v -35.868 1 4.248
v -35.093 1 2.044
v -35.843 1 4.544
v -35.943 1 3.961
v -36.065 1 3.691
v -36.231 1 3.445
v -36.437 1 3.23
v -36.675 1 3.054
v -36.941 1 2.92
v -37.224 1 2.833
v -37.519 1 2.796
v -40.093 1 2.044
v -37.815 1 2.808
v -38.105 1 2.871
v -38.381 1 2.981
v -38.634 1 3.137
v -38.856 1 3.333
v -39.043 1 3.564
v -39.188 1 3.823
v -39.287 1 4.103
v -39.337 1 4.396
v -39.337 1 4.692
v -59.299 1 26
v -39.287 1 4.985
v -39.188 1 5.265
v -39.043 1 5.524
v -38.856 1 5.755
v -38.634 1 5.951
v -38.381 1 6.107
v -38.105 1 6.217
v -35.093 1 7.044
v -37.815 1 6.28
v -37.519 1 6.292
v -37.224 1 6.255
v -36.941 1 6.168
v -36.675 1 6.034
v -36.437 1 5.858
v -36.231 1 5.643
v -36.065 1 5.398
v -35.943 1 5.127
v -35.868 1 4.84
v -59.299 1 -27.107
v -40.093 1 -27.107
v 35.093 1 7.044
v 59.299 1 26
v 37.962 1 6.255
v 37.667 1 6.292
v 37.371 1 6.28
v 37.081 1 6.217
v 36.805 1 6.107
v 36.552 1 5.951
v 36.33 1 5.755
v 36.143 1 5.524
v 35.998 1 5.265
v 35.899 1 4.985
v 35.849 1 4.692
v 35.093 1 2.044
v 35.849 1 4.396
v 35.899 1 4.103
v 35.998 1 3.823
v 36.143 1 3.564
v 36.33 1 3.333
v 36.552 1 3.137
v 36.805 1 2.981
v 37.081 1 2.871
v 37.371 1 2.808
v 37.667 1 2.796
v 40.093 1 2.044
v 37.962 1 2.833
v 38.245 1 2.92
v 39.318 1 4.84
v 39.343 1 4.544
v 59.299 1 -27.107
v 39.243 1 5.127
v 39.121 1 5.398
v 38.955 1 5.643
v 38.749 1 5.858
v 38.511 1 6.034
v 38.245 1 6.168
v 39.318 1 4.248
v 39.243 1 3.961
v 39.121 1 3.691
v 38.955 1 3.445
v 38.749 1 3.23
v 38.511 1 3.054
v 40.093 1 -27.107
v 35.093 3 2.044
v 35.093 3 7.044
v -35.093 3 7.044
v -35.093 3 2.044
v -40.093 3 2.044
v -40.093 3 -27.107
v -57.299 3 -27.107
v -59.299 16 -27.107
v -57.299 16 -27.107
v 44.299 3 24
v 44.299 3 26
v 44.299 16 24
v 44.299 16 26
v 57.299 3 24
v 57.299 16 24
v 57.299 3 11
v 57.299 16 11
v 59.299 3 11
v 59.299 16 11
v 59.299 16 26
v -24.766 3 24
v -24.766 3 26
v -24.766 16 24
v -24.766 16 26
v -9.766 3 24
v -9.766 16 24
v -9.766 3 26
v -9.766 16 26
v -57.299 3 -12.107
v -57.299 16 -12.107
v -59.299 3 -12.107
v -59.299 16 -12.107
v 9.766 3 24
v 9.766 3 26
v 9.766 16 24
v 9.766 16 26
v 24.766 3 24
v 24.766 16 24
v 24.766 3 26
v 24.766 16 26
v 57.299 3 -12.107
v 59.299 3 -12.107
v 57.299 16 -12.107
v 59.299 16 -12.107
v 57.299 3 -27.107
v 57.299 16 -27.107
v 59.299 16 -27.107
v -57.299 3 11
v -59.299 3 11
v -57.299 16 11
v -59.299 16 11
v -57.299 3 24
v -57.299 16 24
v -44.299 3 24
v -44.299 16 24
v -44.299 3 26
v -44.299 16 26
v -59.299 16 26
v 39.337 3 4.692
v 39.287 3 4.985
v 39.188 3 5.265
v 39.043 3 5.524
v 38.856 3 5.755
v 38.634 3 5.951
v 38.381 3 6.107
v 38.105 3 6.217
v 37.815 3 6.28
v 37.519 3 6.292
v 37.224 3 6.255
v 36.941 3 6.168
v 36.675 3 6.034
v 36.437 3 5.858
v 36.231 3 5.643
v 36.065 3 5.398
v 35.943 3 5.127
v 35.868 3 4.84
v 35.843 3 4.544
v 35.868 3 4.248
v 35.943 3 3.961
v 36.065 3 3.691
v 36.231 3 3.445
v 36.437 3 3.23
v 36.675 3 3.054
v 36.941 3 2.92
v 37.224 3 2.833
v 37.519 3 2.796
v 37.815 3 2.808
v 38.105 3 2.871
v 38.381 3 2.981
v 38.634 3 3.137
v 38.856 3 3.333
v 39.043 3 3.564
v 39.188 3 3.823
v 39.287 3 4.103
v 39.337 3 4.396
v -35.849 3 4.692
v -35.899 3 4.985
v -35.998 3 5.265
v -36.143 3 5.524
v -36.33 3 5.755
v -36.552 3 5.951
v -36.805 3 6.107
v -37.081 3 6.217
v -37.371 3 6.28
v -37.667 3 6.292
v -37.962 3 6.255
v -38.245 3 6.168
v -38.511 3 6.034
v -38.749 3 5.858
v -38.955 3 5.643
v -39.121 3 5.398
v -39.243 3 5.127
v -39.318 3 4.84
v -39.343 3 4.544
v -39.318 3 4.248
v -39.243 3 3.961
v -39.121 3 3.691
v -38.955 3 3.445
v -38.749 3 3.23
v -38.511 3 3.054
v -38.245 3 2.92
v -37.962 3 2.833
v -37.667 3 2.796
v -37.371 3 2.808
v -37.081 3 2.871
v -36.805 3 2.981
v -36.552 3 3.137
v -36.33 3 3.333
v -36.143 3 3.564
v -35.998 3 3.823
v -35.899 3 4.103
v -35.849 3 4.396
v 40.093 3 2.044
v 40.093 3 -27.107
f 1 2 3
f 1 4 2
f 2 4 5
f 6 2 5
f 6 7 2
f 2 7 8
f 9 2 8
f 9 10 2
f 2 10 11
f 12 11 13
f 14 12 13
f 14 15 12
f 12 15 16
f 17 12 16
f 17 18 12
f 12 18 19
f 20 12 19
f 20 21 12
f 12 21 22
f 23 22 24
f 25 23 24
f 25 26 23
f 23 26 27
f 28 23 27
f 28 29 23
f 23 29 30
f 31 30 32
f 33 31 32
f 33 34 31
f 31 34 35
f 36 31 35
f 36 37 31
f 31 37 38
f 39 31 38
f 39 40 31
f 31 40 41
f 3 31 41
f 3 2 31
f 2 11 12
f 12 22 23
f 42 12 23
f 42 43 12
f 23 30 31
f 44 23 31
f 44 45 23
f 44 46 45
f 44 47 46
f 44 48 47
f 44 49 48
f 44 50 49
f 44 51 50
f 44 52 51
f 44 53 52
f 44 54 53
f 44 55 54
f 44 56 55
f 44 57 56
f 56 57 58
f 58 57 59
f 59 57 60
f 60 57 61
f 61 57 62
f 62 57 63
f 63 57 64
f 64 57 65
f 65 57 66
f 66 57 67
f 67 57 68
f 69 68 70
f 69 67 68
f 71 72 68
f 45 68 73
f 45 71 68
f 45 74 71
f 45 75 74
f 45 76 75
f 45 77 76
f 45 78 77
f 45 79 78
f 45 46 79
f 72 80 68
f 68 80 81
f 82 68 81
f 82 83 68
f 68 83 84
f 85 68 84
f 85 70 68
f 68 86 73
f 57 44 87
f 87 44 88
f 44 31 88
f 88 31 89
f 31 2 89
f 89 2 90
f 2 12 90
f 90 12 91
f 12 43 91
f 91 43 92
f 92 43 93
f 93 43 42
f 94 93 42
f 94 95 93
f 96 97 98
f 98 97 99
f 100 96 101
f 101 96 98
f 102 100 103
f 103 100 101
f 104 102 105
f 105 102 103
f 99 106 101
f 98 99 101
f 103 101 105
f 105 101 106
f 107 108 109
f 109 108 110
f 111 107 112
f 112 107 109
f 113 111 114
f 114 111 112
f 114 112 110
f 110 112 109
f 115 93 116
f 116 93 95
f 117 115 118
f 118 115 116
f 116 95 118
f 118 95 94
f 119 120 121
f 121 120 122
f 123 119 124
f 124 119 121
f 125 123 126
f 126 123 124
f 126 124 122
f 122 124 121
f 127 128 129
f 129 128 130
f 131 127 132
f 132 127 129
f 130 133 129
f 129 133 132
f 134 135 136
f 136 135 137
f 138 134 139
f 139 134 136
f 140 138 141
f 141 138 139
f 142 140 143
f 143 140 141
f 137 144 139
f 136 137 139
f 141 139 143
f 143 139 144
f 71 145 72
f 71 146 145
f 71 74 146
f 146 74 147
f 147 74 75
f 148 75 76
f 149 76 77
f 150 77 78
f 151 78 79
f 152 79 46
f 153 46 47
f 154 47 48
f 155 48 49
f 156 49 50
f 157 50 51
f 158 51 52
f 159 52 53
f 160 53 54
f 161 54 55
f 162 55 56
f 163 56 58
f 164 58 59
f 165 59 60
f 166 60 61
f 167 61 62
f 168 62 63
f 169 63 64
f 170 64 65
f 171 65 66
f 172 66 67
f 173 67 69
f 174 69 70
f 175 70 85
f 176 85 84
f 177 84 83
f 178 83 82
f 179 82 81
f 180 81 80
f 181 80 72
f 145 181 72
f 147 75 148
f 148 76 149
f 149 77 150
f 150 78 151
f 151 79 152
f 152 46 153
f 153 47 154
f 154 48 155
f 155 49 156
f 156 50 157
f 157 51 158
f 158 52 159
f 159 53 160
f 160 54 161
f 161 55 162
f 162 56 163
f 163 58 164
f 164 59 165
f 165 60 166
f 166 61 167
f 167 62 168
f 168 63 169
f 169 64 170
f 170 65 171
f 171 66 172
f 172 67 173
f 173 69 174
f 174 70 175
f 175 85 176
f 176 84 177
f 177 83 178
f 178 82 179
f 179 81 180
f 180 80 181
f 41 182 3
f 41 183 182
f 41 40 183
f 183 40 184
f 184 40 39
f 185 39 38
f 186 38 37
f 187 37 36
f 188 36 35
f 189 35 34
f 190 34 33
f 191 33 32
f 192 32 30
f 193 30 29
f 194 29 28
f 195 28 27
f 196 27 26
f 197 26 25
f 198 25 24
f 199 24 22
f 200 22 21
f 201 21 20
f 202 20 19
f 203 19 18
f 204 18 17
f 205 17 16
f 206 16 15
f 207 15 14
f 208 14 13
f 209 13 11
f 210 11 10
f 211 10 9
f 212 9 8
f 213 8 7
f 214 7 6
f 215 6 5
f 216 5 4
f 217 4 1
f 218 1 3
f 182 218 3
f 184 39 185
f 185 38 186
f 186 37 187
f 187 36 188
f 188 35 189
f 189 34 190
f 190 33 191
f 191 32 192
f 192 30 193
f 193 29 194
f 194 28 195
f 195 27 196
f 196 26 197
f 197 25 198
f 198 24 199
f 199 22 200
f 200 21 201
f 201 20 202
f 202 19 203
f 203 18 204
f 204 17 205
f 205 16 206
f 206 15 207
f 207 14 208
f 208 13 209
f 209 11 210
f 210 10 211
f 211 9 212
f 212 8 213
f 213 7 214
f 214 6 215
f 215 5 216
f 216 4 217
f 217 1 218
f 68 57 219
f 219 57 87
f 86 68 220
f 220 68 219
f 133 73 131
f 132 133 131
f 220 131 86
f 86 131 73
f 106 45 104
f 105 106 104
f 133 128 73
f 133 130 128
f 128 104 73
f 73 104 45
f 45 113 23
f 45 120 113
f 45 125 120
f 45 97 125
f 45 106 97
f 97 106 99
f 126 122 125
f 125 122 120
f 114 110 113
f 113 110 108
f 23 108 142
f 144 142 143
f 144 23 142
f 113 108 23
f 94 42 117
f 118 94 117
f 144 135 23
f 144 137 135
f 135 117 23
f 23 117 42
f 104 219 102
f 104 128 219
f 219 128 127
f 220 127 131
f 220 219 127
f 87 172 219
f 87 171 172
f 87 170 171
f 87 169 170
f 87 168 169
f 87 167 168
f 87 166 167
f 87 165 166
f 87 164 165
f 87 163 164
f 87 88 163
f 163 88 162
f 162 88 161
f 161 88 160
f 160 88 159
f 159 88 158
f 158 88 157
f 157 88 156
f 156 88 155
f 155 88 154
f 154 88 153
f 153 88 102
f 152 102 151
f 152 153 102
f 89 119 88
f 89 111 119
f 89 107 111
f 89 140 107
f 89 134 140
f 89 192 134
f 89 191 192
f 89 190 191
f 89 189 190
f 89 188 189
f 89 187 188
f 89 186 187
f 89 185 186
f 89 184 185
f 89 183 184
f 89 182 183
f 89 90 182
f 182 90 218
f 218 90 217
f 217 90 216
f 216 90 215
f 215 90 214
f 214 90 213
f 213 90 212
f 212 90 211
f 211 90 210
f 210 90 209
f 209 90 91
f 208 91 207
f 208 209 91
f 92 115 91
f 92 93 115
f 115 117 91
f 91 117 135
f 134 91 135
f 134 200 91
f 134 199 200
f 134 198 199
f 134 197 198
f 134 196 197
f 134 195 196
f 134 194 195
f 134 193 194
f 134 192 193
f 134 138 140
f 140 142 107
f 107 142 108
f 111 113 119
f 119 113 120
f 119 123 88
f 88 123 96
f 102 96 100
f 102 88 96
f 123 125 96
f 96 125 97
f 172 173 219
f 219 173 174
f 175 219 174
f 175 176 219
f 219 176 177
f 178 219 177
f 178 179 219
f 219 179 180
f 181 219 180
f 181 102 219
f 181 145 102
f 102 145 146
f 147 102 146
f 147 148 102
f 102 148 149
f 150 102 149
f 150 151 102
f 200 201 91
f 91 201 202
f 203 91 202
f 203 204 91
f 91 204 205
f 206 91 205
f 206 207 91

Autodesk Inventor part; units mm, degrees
ref_plane "YZ Plane" through (0, 0, 0) normal (1, 0, 0) x (0, 1, 0)
ref_plane "XZ Plane" through (0, 0, 0) normal (0, 1, 0) x (-1, 0, 0)
ref_plane "XY Plane" through (0, 0, 0) normal (0, 0, 1) x (1, 0, 0)
sketch "Sketch1" plane through (0, 0, 0) normal (0, 1, 0) x (-1, 0, 0)
  circle A0 centre (37.593, 4.5441) radius 1.75
  circle A1 centre (-37.593, 4.5441) radius 1.75
  line L0 (-35.093, 7.0441) -> (-35.093, 2.0441)
  circle A2 centre (-37.593, 4.5441) radius 1.75
  line L1 (-35.093, 7.0441) -> (35.093, 7.0441)
  line L2 (35.093, 7.0441) -> (35.093, 2.0441)
  circle A3 centre (37.593, 4.5441) radius 1.75
  line L3 (40.093, 2.0441) -> (40.093, -27.1071)
  line L4 (-40.093, -27.1071) -> (-40.093, 2.0441)
  line L5 (35.093, 2.0441) -> (40.093, 2.0441)
  line L6 (-35.093, 2.0441) -> (-40.093, 2.0441)
  line L7 (-59.2989, -27.1071) -> (-59.2989, 26)
  line L8 (-59.2989, 26) -> (59.2989, 26)
  line L9 (59.2989, 26) -> (59.2989, -27.1071)
  line L10 (59.2989, -27.1071) -> (40.093, -27.1071)
  line L11 (-40.093, -27.1071) -> (-59.2989, -27.1071)
  point P0 (0, 0)
  point P1 (0, 0)
extrude "Extrusion1" add sketch "Sketch1" along normal blind 3
sketch "Sketch3" plane through (0, 3, 0) normal (0, 1, 0) x (1, 0, 0)
  line L0 (-59.2989, -26) -> (-59.2989, -11)
  line L1 (-59.2989, 27.1071) -> (-59.2989, -26) projected
  line L2 (-59.2989, -26) -> (-44.2989, -26)
  line L3 (-59.2989, -26) -> (59.2989, -26) projected
  line L4 (-59.2989, -11) -> (-57.2989, -11)
  line L5 (-57.2989, -11) -> (-57.2989, -24)
  line L6 (-57.2989, -24) -> (-44.2989, -24)
  line L7 (-44.2989, -24) -> (-44.2989, -26)
  line L8 (0, 0) -> (0, 7) construction
  line L9 (59.2989, -26) -> (59.2989, -11)
  line L10 (59.2989, -26) -> (44.2989, -26)
  line L11 (59.2989, -11) -> (57.2989, -11)
  line L12 (57.2989, -11) -> (57.2989, -24)
  line L13 (57.2989, -24) -> (44.2989, -24)
  line L14 (44.2989, -24) -> (44.2989, -26)
  line L15 (-24.7663, -26) -> (-24.7663, -24)
  line L16 (-24.7663, -24) -> (-9.7663, -24)
  line L17 (-9.7663, -24) -> (-9.7663, -26)
  line L18 (-24.7663, -26) -> (-9.7663, -26)
  line L19 (24.7663, -26) -> (9.7663, -26)
  line L20 (9.7663, -26) -> (9.7663, -24)
  line L21 (9.7663, -24) -> (24.7663, -24)
  line L22 (24.7663, -24) -> (24.7663, -26)
  line L23 (-59.2989, 27.1071) -> (-59.2989, 12.1071)
  line L24 (-59.2989, 12.1071) -> (-57.2989, 12.1071)
  line L25 (-57.2989, 12.1071) -> (-57.2989, 27.1071)
  line L26 (-40.093, 27.1071) -> (-59.2989, 27.1071) projected
  line L27 (-59.2989, 27.1071) -> (-57.2989, 27.1071)
  line L28 (59.2989, 27.1071) -> (59.2989, 12.1071)
  line L29 (59.2989, 12.1071) -> (57.2989, 12.1071)
  line L30 (57.2989, 12.1071) -> (57.2989, 27.1071)
  line L31 (59.2989, 27.1071) -> (57.2989, 27.1071)
  dimension "d3" = 15
  dimension "d4" = 2
  dimension "d5" = 88.5979
  dimension "d6" = 19.5327
  dimension "d7" = 15
  dimension "d8" = 19.5327
  dimension "d9" = 15
  dimension "d10" = 2
  dimension "d11" = 15
  dimension "d12" = 2
  dimension "d15" = 2
  dimension "d16" = 2
extrude "Extrusion2" add sketch "Sketch3" along normal blind 13
sketch "Sketch5" plane through (0, 0, 0) normal (0, -1, 0) x (1, 0, 0)
  circle A0 centre (37.593, 4.5441) radius 1.75 projected
  circle A1 centre (-37.593, 4.5441) radius 1.75 projected
  line L0 (-59.2989, -27.1071) -> (-40.093, -27.1071) projected
  line L1 (-40.093, -27.1071) -> (-40.093, 2.0441) projected
  line L2 (-40.093, 2.0441) -> (-35.093, 2.0441) projected
  line L3 (-35.093, 2.0441) -> (-35.093, 7.0441) projected
  line L4 (-35.093, 7.0441) -> (35.093, 7.0441) projected
  line L5 (35.093, 7.0441) -> (35.093, 2.0441) projected
  line L6 (35.093, 2.0441) -> (40.093, 2.0441) projected
  line L7 (40.093, 2.0441) -> (40.093, -27.1071) projected
  line L8 (40.093, -27.1071) -> (59.2989, -27.1071) projected
  line L9 (59.2989, -27.1071) -> (59.2989, 26) projected
  line L10 (59.2989, 26) -> (-59.2989, 26) projected
  line L11 (-59.2989, 26) -> (-59.2989, -27.1071) projected
  point P0 (0, 0)
extrude "Extrusion3" cut sketch "Sketch5" against normal blind 1
properties part number "cover back i2c"
